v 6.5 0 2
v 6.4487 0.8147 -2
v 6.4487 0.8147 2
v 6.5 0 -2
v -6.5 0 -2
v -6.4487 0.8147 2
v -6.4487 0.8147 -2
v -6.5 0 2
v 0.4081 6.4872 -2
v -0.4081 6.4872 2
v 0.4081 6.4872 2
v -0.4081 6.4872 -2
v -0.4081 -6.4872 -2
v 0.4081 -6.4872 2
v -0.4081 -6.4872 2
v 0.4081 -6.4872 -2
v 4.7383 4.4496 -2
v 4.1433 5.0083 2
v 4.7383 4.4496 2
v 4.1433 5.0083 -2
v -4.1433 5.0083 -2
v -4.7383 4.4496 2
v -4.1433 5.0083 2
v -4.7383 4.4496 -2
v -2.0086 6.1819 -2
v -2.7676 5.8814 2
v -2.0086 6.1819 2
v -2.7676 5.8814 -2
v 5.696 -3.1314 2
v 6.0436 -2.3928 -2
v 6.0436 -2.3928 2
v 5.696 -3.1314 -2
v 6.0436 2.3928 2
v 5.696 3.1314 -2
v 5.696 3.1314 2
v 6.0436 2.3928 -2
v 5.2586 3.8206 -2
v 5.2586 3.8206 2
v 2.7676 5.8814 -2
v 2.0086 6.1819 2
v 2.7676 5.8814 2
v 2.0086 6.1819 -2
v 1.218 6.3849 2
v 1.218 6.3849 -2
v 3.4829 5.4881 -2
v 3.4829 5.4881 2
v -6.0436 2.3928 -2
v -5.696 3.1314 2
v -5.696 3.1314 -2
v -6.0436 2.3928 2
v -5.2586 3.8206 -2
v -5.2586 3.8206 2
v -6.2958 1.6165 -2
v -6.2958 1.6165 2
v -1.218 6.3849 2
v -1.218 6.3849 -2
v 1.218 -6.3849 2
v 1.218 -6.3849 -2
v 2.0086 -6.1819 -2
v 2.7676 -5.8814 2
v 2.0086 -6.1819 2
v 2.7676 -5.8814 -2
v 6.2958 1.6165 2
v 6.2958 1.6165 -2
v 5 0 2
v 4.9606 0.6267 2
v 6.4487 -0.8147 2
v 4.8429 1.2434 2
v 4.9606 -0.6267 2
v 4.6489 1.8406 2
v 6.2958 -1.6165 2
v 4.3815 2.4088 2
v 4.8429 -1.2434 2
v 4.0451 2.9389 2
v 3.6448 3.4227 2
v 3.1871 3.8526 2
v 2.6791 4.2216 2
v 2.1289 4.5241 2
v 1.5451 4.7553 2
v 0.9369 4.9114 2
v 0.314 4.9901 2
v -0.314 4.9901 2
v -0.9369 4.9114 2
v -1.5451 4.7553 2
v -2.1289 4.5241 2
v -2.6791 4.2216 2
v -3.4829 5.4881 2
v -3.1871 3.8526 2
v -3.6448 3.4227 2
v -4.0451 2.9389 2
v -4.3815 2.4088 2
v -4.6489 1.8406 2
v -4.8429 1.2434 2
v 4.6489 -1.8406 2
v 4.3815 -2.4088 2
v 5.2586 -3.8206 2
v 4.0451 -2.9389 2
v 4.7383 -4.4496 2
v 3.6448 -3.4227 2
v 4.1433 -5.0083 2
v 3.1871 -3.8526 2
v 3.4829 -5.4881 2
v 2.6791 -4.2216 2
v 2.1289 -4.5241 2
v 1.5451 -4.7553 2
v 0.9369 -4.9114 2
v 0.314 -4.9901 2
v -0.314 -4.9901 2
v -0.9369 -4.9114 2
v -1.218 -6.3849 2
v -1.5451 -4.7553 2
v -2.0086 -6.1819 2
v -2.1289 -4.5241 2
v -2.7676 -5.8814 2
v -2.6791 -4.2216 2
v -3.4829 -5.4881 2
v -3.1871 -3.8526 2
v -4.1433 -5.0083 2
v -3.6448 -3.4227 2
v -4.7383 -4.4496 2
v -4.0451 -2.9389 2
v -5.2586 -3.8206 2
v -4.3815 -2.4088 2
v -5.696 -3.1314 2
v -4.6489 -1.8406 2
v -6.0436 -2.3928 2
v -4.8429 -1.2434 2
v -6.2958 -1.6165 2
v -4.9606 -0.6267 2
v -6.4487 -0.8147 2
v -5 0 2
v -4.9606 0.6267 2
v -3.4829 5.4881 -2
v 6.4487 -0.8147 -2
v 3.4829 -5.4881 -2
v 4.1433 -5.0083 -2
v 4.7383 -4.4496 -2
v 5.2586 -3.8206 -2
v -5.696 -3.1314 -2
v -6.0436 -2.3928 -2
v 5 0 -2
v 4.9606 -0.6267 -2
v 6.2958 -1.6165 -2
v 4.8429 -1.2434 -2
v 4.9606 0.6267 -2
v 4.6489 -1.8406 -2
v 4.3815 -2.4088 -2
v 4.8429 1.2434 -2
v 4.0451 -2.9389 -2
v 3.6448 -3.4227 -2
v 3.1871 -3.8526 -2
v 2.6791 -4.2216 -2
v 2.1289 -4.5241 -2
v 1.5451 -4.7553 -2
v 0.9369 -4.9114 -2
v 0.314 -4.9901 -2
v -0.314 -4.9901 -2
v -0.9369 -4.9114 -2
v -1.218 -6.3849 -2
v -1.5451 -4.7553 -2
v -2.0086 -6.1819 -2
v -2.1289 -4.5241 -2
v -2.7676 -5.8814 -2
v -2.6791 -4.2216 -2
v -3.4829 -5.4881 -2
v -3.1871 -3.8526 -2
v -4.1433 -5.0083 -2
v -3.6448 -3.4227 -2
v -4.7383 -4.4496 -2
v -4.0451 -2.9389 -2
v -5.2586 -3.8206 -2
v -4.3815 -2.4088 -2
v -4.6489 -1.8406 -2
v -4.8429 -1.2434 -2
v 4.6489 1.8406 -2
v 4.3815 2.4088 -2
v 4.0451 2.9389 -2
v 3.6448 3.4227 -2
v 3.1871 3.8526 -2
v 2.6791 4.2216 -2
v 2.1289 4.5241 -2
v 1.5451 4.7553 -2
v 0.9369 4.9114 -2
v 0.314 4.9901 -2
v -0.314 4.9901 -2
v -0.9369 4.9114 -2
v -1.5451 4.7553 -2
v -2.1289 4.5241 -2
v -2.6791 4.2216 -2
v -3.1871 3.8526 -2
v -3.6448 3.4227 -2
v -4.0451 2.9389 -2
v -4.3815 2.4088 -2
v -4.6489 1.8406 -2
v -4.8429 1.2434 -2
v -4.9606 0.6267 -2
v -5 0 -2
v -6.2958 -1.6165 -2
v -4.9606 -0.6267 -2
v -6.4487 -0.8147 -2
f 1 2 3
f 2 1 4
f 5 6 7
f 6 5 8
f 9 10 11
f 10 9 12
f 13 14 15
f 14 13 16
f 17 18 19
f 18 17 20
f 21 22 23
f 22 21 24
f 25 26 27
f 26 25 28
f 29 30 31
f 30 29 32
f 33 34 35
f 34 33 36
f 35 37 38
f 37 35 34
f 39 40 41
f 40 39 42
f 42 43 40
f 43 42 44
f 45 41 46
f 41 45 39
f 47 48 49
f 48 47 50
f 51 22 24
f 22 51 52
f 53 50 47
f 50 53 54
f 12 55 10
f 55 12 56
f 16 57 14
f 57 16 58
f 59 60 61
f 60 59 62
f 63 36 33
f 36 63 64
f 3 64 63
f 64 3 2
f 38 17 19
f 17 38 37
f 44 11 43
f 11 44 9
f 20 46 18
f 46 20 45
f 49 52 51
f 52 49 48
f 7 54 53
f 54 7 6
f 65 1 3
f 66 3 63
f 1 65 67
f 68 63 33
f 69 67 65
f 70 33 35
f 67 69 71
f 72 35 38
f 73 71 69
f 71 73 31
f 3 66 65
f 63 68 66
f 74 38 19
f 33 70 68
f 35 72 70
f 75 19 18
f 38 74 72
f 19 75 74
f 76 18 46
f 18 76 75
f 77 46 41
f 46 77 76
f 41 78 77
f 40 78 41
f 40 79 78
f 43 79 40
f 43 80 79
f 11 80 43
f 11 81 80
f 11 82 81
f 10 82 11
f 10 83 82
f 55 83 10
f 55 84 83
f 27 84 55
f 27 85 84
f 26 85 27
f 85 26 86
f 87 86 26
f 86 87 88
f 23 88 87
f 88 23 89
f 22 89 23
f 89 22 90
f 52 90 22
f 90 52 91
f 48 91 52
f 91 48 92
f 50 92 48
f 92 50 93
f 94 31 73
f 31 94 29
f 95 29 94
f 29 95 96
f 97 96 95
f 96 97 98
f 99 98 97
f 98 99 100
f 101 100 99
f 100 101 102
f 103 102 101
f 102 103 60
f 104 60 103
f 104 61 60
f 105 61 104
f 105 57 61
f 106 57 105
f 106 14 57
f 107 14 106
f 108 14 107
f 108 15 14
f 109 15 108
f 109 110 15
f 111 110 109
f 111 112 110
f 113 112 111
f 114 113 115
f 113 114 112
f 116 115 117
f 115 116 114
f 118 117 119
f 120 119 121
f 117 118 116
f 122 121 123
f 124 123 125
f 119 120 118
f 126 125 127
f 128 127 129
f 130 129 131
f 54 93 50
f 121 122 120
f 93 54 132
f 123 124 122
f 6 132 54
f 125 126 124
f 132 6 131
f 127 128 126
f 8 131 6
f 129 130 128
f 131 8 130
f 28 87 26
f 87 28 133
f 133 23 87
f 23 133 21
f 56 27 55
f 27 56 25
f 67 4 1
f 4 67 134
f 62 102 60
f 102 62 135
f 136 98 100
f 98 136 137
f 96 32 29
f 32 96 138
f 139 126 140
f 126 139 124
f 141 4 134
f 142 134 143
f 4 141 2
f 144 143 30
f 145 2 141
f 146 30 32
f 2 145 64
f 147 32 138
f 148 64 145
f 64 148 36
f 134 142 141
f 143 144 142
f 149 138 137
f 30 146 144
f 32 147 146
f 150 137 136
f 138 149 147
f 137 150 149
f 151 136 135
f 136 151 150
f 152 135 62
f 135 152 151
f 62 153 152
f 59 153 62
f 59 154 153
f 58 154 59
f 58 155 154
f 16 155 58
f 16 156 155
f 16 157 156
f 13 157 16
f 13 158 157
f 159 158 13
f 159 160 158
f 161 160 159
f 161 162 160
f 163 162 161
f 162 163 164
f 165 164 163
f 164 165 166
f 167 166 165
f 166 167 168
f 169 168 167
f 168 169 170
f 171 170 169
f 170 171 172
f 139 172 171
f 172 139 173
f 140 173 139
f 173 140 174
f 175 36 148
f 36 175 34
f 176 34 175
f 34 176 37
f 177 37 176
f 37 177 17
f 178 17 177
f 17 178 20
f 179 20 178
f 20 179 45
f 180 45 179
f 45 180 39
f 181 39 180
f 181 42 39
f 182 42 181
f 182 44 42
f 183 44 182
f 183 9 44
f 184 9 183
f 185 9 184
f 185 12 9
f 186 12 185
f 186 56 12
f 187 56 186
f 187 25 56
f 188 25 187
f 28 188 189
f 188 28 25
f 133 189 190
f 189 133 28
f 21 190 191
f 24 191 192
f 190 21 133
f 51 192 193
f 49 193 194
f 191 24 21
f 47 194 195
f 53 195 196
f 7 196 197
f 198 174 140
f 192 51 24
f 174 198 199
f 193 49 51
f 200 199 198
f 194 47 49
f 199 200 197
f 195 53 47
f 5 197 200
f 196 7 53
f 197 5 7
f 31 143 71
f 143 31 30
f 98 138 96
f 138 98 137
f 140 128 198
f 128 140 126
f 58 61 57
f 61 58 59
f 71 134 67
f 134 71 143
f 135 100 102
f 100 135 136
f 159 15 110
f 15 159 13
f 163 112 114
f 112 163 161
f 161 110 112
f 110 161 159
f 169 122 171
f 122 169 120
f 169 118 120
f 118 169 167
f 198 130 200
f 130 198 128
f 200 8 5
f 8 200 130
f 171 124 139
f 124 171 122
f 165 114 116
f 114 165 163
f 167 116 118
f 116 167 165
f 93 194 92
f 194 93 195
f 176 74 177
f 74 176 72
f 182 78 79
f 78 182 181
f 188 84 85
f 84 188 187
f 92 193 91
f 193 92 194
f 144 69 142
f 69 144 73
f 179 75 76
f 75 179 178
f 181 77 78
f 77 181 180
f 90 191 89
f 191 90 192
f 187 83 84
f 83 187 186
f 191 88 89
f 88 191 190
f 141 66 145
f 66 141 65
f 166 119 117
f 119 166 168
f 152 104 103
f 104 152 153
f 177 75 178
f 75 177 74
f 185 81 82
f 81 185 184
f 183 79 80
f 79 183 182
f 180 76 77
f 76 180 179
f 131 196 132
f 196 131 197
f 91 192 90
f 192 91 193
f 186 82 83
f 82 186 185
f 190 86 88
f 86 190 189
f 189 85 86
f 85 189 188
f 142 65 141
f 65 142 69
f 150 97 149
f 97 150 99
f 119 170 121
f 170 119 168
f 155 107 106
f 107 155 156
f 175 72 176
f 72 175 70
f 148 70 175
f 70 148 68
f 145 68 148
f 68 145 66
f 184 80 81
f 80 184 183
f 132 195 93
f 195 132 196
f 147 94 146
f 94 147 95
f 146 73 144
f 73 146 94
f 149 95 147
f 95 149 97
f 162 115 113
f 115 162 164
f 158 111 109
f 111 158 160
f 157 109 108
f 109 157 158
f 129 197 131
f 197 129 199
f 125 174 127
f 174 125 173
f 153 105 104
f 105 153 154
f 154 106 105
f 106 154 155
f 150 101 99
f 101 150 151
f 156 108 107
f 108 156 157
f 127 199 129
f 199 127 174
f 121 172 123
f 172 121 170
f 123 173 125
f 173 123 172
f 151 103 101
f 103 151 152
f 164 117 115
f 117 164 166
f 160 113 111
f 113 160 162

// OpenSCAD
$fn = 50;


difference() {
	union() {
		translate(v = [0, 0, -2.0000000000]) {
			cylinder(h = 4, r = 6.5000000000);
		}
	}
	union() {
		translate(v = [0, 0, -100.0000000000]) {
			cylinder(h = 200, r = 5.0000000000);
		}
	}
}
